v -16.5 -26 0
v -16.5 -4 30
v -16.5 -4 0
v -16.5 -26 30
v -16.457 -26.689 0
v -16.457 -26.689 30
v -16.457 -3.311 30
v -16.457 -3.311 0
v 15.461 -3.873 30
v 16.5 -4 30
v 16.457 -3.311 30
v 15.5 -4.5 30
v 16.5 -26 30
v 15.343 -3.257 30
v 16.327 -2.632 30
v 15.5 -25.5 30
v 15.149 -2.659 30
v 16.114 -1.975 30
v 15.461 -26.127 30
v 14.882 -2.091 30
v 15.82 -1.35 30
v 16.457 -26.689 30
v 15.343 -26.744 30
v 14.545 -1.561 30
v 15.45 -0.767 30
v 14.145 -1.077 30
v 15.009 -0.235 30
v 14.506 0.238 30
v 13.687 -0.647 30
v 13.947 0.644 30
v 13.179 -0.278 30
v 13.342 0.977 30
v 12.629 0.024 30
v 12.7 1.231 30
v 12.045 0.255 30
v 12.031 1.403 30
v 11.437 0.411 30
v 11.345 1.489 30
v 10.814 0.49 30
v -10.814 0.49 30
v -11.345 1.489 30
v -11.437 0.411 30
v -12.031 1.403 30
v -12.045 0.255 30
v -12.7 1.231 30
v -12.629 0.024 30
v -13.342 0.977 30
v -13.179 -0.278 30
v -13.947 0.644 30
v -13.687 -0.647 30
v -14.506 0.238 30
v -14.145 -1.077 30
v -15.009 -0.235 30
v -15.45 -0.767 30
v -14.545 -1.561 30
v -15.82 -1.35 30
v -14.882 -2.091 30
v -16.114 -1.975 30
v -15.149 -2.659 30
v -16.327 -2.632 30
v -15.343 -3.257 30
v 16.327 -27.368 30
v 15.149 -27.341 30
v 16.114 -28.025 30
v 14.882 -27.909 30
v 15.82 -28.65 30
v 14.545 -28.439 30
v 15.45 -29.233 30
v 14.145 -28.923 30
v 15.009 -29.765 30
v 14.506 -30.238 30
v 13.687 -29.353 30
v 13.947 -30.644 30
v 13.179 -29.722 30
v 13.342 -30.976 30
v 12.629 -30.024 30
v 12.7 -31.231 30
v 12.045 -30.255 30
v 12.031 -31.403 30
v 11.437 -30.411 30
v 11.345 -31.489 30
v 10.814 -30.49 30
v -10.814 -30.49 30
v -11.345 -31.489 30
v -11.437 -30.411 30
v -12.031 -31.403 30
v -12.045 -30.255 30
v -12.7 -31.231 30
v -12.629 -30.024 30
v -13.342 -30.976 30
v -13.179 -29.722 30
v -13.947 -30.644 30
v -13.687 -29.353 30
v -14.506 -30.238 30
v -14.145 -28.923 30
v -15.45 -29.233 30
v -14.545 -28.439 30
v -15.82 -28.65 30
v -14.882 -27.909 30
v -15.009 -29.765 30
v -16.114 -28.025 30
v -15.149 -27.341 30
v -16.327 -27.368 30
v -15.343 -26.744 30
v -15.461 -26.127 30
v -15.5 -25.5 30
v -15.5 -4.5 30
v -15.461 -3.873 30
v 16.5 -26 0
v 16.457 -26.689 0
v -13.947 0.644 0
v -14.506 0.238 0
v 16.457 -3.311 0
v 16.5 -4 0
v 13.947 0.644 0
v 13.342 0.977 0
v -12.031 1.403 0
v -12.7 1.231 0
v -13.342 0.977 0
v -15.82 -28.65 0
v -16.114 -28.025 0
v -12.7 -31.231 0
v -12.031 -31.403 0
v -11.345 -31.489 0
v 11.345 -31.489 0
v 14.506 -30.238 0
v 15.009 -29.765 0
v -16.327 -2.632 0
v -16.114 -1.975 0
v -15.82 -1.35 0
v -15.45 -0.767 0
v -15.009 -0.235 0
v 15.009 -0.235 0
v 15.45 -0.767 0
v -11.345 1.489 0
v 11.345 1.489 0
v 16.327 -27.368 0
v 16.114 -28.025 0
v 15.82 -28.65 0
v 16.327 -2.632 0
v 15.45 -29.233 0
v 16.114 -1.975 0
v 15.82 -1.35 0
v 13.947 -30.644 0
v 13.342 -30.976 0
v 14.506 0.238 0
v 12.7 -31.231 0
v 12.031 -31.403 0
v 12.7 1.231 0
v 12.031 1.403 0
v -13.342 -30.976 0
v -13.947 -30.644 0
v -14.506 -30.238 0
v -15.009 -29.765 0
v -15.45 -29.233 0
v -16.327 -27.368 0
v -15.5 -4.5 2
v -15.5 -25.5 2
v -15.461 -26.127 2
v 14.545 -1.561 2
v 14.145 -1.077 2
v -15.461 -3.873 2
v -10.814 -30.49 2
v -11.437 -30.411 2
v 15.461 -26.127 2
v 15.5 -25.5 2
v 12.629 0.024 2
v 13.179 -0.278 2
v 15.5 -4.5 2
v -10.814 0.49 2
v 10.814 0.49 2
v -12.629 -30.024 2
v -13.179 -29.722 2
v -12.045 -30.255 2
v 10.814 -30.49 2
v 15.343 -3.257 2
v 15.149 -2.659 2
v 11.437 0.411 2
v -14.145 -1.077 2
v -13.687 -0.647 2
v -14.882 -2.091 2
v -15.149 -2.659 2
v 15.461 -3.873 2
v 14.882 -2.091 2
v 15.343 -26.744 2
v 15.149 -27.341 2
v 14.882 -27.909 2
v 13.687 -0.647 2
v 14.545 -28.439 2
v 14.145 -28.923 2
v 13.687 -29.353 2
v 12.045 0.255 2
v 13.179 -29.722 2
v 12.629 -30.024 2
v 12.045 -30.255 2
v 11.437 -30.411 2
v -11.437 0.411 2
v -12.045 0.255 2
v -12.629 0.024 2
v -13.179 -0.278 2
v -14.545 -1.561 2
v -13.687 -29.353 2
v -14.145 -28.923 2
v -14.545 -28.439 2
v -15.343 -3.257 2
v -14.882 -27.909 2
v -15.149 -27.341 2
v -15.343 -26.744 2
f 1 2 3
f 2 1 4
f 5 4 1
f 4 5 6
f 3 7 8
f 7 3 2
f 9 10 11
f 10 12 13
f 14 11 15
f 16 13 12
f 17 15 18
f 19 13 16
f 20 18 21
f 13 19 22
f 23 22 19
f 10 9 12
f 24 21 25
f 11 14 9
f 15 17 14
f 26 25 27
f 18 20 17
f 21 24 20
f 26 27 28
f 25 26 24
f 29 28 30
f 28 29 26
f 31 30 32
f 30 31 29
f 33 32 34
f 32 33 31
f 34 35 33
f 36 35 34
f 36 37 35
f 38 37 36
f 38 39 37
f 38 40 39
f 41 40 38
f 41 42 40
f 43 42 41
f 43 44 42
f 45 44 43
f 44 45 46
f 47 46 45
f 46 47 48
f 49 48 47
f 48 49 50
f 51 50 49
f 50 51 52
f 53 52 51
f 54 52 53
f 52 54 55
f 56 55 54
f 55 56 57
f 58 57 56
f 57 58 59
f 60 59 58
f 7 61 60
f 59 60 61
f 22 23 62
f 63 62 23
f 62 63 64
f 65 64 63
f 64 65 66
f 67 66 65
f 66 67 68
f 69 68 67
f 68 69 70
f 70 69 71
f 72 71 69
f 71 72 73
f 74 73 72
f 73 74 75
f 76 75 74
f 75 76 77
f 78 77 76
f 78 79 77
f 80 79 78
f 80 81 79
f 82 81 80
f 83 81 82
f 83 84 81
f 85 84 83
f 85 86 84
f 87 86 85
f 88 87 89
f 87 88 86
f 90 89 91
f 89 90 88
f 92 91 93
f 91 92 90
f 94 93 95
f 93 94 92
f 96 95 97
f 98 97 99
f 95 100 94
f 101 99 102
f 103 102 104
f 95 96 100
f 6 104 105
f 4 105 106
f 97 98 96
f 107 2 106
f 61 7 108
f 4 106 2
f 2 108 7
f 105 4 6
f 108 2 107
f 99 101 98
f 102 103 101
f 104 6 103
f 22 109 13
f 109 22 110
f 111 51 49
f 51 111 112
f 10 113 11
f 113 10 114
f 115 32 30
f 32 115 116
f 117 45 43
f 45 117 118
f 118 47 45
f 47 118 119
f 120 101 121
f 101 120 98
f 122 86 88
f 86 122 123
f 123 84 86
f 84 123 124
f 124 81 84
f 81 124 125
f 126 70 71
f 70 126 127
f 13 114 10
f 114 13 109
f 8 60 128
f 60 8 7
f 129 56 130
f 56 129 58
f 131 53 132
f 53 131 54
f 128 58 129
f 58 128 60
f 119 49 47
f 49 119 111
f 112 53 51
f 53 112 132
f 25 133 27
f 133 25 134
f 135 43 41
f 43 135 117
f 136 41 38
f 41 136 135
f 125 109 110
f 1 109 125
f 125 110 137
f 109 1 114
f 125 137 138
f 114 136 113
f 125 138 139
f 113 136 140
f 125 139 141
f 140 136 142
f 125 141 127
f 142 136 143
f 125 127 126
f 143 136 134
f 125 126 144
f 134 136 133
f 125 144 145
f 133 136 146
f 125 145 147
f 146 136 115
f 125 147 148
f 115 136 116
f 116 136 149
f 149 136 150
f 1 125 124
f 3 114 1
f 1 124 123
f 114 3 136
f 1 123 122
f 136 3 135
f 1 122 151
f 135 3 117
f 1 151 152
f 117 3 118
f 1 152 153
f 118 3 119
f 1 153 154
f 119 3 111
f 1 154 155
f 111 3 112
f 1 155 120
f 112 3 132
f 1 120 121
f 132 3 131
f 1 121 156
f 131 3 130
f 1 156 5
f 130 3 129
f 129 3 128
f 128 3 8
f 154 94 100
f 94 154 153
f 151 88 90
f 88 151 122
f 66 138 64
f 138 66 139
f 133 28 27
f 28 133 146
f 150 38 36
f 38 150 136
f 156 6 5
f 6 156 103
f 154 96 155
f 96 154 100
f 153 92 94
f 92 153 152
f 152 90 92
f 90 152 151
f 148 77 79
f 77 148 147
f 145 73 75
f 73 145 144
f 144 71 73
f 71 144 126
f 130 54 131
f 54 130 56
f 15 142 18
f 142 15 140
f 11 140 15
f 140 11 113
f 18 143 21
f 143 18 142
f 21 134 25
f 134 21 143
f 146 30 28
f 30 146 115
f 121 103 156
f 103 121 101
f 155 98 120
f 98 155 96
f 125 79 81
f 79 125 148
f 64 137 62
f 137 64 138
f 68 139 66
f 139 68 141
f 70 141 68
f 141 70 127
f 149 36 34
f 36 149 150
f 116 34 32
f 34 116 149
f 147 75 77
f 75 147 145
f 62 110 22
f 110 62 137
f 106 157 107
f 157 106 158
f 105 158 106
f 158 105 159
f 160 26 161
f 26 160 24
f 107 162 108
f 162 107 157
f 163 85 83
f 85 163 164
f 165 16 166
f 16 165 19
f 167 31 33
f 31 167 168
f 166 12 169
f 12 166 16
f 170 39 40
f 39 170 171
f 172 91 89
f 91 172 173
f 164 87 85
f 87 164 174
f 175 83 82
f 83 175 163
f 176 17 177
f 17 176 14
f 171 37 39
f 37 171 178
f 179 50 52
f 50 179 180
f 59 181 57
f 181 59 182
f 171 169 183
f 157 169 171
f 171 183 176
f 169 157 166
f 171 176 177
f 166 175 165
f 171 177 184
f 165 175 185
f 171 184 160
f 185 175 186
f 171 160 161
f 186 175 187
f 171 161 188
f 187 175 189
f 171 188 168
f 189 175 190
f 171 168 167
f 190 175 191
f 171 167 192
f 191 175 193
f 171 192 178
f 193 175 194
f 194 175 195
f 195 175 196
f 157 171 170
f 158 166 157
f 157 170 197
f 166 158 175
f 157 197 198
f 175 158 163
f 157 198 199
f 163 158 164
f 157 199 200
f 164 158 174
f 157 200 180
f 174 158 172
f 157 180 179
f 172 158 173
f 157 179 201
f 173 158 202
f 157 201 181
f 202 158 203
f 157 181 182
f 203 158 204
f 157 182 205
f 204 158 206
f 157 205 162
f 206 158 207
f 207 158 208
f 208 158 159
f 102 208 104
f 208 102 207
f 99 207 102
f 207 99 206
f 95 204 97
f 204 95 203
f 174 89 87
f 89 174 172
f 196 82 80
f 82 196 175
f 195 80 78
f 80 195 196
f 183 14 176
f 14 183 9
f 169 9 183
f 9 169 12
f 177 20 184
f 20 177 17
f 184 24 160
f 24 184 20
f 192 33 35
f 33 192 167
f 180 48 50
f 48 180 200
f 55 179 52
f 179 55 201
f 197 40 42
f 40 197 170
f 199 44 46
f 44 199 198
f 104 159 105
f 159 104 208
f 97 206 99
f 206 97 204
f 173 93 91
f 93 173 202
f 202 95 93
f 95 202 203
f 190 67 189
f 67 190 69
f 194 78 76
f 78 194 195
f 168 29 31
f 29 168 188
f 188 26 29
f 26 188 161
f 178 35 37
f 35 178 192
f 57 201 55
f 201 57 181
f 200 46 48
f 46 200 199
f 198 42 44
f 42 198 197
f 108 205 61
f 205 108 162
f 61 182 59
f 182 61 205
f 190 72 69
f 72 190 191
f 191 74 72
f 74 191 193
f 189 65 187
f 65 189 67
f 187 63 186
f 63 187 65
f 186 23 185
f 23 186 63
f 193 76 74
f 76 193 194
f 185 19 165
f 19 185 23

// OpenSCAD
$fn = 50;


difference() {
	union() {
		translate(v = [0, -15.0000000000, 0]) {
			hull() {
				translate(v = [-11.0000000000, 11.0000000000, 0]) {
					cylinder(h = 30, r = 5.5000000000);
				}
				translate(v = [11.0000000000, 11.0000000000, 0]) {
					cylinder(h = 30, r = 5.5000000000);
				}
				translate(v = [-11.0000000000, -11.0000000000, 0]) {
					cylinder(h = 30, r = 5.5000000000);
				}
				translate(v = [11.0000000000, -11.0000000000, 0]) {
					cylinder(h = 30, r = 5.5000000000);
				}
			}
		}
	}
	union() {
		translate(v = [0, -15.0000000000, 2]) {
			hull() {
				translate(v = [-10.5000000000, 10.5000000000, 0]) {
					cylinder(h = 60, r = 5);
				}
				translate(v = [10.5000000000, 10.5000000000, 0]) {
					cylinder(h = 60, r = 5);
				}
				translate(v = [-10.5000000000, -10.5000000000, 0]) {
					cylinder(h = 60, r = 5);
				}
				translate(v = [10.5000000000, -10.5000000000, 0]) {
					cylinder(h = 60, r = 5);
				}
			}
		}
	}
}
